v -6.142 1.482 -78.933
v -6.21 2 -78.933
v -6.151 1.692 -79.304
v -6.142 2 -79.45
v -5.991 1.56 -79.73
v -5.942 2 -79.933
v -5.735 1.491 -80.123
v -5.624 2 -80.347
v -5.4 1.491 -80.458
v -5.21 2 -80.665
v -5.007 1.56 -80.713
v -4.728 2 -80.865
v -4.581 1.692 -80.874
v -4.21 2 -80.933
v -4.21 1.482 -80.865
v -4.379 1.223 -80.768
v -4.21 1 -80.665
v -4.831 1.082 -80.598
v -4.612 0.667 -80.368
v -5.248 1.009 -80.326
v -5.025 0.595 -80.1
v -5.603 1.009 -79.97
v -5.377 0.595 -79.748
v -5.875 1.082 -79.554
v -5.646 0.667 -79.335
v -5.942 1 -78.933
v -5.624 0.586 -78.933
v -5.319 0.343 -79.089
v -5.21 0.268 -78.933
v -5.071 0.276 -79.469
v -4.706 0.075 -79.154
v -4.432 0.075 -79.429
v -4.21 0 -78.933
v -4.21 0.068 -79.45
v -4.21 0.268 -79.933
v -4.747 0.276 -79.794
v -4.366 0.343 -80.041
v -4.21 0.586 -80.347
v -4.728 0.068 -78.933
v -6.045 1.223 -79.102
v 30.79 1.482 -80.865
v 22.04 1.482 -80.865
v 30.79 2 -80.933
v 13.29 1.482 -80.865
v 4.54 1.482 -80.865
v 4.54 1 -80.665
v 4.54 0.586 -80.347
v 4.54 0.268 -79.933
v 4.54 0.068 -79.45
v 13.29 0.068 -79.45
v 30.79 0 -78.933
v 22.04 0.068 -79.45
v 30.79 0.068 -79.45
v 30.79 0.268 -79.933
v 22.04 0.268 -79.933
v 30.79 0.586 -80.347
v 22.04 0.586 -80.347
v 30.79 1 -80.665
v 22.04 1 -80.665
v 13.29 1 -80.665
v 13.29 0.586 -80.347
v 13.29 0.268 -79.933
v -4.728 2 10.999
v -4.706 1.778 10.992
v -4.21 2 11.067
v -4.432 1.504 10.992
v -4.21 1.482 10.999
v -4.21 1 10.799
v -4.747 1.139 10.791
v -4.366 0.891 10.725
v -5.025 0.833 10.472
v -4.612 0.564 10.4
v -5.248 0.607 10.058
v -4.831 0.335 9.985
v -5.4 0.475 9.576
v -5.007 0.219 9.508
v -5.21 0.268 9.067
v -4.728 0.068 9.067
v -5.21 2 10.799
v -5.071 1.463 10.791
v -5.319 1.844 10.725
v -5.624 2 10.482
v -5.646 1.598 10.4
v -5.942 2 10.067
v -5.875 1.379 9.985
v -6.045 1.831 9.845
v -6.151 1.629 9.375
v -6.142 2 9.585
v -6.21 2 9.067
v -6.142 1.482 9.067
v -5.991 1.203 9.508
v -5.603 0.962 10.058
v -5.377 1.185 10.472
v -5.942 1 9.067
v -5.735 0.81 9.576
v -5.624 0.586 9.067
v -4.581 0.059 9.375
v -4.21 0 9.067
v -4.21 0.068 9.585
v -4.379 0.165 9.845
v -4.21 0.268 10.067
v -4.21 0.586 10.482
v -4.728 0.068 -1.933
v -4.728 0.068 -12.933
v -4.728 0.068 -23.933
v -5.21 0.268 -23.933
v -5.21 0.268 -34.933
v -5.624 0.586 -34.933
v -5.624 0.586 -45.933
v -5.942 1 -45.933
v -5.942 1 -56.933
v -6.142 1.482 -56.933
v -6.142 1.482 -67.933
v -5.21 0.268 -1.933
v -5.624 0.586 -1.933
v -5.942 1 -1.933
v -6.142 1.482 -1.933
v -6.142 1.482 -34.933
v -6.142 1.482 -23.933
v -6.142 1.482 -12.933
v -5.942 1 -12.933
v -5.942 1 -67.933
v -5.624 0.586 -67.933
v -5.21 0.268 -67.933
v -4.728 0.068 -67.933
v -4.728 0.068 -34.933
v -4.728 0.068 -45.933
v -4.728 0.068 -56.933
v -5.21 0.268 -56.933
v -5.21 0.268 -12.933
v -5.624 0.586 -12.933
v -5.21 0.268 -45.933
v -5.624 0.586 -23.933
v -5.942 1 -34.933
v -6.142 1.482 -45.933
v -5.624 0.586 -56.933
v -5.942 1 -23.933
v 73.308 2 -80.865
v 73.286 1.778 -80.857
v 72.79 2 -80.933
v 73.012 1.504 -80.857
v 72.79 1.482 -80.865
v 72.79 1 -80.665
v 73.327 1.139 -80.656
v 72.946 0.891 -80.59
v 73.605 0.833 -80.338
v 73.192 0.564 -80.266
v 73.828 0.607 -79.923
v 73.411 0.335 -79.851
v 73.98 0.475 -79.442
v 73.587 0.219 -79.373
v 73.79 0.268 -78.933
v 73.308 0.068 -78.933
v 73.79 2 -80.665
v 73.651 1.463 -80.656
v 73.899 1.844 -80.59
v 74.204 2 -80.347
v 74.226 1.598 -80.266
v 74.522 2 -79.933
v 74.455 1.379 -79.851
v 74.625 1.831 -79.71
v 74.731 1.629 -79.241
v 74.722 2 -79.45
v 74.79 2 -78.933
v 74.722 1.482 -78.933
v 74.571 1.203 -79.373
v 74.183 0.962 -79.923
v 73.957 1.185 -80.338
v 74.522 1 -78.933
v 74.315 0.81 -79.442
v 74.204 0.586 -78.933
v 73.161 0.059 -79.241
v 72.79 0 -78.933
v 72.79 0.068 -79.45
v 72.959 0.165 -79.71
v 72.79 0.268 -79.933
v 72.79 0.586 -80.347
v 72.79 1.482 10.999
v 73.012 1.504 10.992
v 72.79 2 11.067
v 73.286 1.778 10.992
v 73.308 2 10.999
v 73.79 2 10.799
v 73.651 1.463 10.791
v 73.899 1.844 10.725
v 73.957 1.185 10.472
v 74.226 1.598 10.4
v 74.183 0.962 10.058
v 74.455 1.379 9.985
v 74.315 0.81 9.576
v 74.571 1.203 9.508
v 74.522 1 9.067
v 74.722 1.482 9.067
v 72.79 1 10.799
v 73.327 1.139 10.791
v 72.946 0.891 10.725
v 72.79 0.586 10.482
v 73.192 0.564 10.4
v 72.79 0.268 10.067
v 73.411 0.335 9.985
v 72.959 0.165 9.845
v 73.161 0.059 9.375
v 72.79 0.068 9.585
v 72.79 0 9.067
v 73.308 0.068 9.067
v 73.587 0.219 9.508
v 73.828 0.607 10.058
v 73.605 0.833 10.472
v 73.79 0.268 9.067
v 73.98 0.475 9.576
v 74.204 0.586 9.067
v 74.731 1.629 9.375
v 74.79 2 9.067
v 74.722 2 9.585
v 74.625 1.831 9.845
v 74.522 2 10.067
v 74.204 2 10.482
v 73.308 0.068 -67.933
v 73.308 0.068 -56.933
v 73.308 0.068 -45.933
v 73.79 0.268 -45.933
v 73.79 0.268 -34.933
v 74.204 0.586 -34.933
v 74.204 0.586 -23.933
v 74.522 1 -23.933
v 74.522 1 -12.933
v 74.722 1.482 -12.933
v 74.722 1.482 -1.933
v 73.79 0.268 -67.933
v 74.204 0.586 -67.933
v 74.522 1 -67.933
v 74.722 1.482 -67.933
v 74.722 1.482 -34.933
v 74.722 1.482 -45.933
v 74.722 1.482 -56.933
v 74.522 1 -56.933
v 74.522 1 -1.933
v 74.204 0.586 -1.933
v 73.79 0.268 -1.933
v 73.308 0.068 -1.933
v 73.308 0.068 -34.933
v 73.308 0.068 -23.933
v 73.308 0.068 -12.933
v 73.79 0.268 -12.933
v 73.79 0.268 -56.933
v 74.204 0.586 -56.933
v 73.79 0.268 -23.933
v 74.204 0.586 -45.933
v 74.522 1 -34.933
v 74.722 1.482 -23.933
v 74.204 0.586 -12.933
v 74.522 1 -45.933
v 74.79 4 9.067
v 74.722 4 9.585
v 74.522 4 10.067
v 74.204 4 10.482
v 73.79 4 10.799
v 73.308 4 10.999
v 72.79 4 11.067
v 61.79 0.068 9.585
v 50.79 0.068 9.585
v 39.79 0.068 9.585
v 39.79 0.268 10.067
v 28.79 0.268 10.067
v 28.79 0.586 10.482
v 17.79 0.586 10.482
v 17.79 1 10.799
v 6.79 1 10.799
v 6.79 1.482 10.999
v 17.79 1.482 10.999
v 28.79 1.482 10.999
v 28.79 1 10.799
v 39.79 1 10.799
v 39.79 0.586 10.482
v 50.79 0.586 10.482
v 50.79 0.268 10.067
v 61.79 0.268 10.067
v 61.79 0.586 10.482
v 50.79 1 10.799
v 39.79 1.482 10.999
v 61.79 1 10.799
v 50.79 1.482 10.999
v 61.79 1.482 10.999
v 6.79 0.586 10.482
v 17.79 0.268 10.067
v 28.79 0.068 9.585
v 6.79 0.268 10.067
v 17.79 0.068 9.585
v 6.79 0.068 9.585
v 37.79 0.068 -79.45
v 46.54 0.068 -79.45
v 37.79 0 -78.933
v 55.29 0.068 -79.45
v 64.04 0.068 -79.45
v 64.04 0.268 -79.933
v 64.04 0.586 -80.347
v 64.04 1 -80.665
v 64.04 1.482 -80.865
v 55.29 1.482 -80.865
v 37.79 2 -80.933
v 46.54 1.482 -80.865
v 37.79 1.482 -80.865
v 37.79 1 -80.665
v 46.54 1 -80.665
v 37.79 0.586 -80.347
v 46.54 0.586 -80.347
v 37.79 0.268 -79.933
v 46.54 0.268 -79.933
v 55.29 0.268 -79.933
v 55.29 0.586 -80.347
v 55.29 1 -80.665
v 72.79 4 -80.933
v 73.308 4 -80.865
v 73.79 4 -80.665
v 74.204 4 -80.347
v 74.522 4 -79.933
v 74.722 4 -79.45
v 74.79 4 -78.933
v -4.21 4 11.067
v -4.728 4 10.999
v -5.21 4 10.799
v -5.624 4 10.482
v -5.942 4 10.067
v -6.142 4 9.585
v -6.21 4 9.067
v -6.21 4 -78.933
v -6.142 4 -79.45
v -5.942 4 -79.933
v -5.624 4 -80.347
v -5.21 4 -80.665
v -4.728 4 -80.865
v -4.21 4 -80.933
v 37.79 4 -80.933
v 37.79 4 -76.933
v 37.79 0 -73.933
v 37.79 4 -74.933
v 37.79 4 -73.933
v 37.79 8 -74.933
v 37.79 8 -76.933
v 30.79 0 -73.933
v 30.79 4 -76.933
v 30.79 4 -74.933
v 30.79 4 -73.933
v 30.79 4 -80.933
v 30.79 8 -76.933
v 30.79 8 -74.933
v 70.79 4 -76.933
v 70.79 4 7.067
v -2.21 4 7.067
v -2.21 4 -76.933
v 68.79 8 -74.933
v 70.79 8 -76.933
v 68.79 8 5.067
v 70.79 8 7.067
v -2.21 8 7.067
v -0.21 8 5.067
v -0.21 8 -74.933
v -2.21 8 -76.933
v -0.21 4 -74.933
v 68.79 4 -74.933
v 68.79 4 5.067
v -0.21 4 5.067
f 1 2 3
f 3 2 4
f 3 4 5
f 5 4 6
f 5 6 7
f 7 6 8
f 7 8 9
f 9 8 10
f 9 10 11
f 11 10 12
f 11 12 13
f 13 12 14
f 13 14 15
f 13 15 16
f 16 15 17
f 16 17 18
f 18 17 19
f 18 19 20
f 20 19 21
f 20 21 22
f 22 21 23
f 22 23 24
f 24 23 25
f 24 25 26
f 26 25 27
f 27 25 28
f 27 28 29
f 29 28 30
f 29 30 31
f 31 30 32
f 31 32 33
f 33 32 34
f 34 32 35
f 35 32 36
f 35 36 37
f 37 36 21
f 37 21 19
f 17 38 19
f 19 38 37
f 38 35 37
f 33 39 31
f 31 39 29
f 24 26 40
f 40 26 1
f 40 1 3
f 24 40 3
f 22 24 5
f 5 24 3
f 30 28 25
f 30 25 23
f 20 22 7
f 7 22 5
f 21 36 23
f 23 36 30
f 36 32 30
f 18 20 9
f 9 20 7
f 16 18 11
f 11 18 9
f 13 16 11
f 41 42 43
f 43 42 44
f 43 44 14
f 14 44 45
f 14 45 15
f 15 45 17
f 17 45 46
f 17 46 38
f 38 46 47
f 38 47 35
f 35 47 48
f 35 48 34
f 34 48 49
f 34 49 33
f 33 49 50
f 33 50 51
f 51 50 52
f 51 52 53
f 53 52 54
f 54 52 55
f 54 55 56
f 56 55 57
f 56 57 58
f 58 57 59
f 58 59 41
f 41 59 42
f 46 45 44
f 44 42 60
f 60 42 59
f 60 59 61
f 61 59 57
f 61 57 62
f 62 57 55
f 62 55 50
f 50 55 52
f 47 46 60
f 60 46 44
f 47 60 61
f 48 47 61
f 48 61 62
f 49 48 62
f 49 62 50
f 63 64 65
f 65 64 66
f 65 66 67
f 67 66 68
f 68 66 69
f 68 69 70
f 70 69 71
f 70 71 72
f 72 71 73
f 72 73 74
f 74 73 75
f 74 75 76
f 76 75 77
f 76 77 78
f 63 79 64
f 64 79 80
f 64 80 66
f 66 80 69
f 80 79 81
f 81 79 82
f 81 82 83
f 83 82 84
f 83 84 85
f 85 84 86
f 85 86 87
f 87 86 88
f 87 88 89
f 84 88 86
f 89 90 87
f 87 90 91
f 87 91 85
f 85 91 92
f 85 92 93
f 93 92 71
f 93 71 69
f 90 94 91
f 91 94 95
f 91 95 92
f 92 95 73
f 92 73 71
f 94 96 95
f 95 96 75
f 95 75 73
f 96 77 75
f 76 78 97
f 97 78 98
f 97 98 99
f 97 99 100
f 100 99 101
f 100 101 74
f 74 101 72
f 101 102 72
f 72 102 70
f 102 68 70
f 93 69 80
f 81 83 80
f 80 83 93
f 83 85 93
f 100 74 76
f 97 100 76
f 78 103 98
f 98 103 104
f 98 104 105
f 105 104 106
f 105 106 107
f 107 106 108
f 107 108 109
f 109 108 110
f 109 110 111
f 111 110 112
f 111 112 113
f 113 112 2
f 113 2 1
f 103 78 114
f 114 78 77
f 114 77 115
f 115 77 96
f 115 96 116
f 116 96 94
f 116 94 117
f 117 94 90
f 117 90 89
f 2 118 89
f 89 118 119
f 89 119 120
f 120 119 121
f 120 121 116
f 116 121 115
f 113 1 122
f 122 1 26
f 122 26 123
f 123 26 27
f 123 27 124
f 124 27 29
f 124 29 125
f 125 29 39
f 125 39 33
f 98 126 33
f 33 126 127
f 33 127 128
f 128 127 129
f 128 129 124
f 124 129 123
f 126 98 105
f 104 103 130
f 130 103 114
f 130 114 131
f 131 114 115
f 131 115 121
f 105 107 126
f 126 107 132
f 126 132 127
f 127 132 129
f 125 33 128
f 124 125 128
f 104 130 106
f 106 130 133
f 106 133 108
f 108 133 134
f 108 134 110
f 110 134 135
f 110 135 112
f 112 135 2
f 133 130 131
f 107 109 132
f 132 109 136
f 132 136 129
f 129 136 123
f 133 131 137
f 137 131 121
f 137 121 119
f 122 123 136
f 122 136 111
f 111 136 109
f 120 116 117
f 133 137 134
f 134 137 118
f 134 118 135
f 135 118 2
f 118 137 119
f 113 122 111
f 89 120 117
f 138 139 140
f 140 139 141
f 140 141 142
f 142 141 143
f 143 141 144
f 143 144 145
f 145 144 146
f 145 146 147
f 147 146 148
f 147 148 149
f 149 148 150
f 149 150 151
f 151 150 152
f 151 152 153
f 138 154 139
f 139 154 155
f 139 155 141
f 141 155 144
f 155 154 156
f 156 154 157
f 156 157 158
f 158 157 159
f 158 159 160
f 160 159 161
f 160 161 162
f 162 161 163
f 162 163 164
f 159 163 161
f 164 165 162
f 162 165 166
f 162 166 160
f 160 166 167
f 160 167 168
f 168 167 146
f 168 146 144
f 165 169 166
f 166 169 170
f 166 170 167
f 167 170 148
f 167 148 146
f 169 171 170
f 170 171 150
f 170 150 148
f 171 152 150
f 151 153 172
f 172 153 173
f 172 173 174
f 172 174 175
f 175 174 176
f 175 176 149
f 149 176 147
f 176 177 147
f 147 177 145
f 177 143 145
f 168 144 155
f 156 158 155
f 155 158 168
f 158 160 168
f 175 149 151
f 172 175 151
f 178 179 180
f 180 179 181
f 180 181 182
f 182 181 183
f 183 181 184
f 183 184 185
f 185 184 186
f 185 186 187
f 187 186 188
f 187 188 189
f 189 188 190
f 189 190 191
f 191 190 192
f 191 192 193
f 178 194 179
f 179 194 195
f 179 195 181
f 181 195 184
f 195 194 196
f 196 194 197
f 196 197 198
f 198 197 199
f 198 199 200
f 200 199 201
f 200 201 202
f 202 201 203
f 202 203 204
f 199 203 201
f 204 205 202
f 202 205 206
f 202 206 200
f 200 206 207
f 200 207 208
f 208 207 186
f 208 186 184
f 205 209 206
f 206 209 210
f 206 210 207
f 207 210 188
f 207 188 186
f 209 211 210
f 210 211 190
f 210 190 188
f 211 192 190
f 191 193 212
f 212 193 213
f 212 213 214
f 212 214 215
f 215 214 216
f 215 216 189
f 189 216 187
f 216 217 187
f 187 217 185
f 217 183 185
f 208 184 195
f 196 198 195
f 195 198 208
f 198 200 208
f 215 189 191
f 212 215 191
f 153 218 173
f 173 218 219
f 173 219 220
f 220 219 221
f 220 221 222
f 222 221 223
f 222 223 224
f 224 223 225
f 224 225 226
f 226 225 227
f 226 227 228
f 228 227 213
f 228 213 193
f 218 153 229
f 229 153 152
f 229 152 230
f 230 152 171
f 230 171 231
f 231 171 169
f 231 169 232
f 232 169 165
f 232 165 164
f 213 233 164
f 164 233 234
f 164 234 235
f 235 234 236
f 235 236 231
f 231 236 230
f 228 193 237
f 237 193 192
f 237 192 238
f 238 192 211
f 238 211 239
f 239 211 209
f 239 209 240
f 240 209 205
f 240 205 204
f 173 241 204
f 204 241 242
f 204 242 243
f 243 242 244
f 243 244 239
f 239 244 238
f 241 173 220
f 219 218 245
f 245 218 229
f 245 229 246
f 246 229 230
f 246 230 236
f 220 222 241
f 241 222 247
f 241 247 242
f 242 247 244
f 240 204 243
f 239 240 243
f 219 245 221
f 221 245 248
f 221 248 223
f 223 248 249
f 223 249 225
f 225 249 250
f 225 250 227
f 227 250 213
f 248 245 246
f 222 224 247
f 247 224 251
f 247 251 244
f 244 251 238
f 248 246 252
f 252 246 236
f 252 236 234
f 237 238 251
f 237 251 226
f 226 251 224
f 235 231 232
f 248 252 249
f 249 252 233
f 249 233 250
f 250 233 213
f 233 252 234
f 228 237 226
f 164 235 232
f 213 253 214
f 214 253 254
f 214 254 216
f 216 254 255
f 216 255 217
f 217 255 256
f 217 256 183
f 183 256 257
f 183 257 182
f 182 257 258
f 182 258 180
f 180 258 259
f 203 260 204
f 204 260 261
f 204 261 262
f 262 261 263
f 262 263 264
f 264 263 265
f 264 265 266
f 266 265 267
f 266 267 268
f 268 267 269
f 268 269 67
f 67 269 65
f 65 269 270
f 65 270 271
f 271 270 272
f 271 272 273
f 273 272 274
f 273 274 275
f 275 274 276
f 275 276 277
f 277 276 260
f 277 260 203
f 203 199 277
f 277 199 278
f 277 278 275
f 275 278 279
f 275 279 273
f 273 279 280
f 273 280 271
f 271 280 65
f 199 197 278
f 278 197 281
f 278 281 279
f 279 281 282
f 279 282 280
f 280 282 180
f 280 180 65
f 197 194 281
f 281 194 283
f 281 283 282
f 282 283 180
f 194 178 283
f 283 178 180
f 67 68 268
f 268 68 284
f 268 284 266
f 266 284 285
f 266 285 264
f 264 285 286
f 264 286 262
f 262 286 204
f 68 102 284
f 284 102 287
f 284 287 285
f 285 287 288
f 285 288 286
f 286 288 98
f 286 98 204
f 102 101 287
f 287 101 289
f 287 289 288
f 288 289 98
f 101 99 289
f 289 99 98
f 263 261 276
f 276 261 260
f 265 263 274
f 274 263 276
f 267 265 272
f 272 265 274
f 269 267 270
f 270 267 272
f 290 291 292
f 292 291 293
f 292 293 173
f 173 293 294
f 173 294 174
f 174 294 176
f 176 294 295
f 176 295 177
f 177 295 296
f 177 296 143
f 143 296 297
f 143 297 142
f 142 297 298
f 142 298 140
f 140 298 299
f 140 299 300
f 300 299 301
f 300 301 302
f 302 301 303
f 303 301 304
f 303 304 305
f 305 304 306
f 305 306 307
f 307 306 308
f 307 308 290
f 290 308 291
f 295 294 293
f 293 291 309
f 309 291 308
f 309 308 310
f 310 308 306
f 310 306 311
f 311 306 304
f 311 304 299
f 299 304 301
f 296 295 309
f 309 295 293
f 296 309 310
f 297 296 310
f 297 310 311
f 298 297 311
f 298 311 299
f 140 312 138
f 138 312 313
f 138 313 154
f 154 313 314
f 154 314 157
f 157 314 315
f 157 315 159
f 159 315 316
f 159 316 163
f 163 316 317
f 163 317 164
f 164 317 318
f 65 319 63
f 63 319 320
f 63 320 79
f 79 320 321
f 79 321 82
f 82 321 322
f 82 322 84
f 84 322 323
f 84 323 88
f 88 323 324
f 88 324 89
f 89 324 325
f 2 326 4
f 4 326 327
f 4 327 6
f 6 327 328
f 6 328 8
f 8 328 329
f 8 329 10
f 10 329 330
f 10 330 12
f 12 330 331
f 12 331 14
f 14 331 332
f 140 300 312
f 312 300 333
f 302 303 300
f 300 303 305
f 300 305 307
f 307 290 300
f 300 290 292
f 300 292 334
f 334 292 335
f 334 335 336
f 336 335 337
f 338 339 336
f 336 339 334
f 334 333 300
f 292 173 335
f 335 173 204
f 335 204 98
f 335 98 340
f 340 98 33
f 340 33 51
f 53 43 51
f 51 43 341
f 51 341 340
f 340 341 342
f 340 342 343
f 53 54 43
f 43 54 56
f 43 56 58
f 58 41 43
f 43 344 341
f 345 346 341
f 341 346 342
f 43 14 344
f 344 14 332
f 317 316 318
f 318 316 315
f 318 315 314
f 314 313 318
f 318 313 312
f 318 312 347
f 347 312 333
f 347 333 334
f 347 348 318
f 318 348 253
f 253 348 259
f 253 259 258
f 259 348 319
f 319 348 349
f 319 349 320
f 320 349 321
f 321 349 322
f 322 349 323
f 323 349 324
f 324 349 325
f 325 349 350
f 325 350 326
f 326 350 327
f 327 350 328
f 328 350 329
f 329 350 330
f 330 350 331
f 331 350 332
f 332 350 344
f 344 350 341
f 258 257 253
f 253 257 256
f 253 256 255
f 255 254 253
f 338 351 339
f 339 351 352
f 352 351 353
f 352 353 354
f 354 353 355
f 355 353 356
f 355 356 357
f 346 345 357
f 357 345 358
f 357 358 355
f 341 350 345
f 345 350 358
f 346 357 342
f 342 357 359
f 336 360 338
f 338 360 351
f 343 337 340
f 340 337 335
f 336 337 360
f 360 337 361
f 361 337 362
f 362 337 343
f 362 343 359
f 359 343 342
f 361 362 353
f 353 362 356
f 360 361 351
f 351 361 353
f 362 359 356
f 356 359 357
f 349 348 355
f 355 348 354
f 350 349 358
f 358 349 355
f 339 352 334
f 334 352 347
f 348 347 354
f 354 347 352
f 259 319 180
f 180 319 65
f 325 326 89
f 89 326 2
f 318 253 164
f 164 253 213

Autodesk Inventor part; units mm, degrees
ref_plane "YZ Plane" through (0, 0, 0) normal (1, 0, 0) x (0, 1, 0)
ref_plane "XZ Plane" through (0, 0, 0) normal (0, 1, 0) x (-1, 0, 0)
ref_plane "XY Plane" through (0, 0, 0) normal (0, 0, 1) x (1, 0, 0)
sketch "Sketch1" plane through (0, 0, 0) normal (0, 1, 0) x (-1, 0, 0)
  line L0 (6.21, 11.0673) -> (-74.79, 11.0673)
  line L1 (-74.79, 11.0673) -> (-74.79, -80.9327)
  line L2 (-74.79, -80.9327) -> (6.21, -80.9327)
  line L3 (6.21, -80.9327) -> (6.21, 11.0673)
  point P0 (0, 0)
  dimension "d0" = 81
  dimension "d1" = 92
extrude "Extrusion1" add sketch "Sketch1" along normal blind 4
sketch "Sketch2" plane through (0, 4, 0) normal (0, 1, 0) x (1, 0, 0)
  line L0 (-6.21, -11.0673) -> (74.79, -11.0673) projected
  line L1 (-3.1343, -11.0673) -> (0.8657, -11.0673) construction
  line L2 (-6.21, 80.9327) -> (-6.21, -11.0673) projected
  line L3 (-2.21, -7.0673) -> (70.79, -7.0673)
  line L4 (70.79, -7.0673) -> (70.79, 76.9327)
  line L5 (70.79, 76.9327) -> (-2.21, 76.9327)
  line L6 (-2.21, 76.9327) -> (-2.21, -7.0673)
  line L7 (74.79, -11.0673) -> (74.79, 80.9327) projected
  line L8 (-6.21, -11.0673) -> (74.79, -11.0673)
  line L9 (74.79, -11.0673) -> (74.79, 80.9327)
  line L10 (74.79, 80.9327) -> (-6.21, 80.9327)
  line L11 (-6.21, 80.9327) -> (-6.21, -11.0673)
  line L12 (-6.21, 80.9327) -> (-6.21, -11.0673) projected
  line L13 (2.4089, -7.0673) -> (4.4089, -7.0673) construction
  line L14 (-2.21, -5.0673) -> (-0.21, -5.0673) construction
  line L15 (-0.21, -5.0673) -> (68.79, -5.0673)
  line L16 (68.79, -5.0673) -> (68.79, 74.9327)
  line L17 (68.79, 74.9327) -> (-0.21, 74.9327)
  line L18 (-0.21, 74.9327) -> (-0.21, -5.0673)
  point P0 (0, 0)
  dimension "d8" = 73
  dimension "d9" = 84
  dimension "d14" = 69
  dimension "d15" = 80
extrude "Extrusion2" add sketch "Sketch2" along normal blind 4 contours L6 L5 L4 L3
sketch "Sketch3" plane through (0, 4, 0) normal (0, 1, 0) x (1, 0, 0)
  line L0 (-6.21, 80.9327) -> (-6.21, -11.0673) projected
  line L1 (-6.21, 78.6108) -> (34.29, 78.6108)
  line L2 (74.79, -11.0673) -> (74.79, 80.9327) projected
  line L3 (34.29, 78.6108) -> (34.29, 76.9327)
  line L4 (70.79, 76.9327) -> (-2.21, 76.9327) projected
  line L5 (34.29, 76.9327) -> (30.79, 76.9327)
  line L6 (30.79, 76.9327) -> (34.29, 76.9327)
  line L7 (34.29, 76.9327) -> (37.79, 76.9327)
  line L8 (37.79, 76.9327) -> (37.79, 73.9327)
  line L9 (37.79, 73.9327) -> (30.79, 73.9327)
  line L10 (30.79, 73.9327) -> (30.79, 76.9327)
  point P0 (0, 0)
  dimension "d18" = 40.5
  dimension "d19" = 3.5
  dimension "d20" = 3.5
  dimension "d21" = 3.5
  dimension "d22" = 3
  dimension "d23" = 7
extrude "Extrusion3" cut sketch "Sketch3" against normal blind 4
sketch "Sketch4" plane through (0, 4, 0) normal (0, -1, 0) x (1, 0, 0)
  line L0 (30.79, -76.9327) -> (37.79, -76.9327) projected
  line L1 (30.79, -73.9327) -> (30.79, -74.9327) projected
  line L2 (37.79, -76.9327) -> (30.79, -76.9327)
  line L3 (30.79, -76.9327) -> (30.79, -74.9327)
  line L4 (30.79, -74.9327) -> (37.79, -74.9327)
  line L5 (37.79, -74.9327) -> (37.79, -76.9327)
  point P0 (0, 0)
extrude "Extrusion4" cut sketch "Sketch4" against normal blind 10
sketch "Sketch5" plane through (30.79, 4, -76.9327) normal (0, 0, 1) x (1, 0, 0)
  line L0 (7, -4) -> (0, -4) projected
  line L1 (0, 0) -> (0, -4) projected
  line L2 (7, -4) -> (0, -4)
  line L3 (0, -4) -> (0, 0)
  line L4 (0, 0) -> (7, 0)
  line L5 (7, 0) -> (7, -4)
  point P0 (-30.79, -4)
extrude "Extrusion5" cut sketch "Sketch5" against normal blind 10
fillet "Fillet1" radius 2 9 edges at (74.79, 2, 11.0673) (74.79, 0, -34.9327) (34.29, 0, 11.0673) (-6.21, 2, 11.0673) (-6.21, 0, -34.9327) (-6.21, 2, -80.9327) (12.29, 0, -80.9327) (56.29, 0, -80.9327) (74.79, 2, -80.9327)
properties part number "Battery Box Lid_3DPrint"
